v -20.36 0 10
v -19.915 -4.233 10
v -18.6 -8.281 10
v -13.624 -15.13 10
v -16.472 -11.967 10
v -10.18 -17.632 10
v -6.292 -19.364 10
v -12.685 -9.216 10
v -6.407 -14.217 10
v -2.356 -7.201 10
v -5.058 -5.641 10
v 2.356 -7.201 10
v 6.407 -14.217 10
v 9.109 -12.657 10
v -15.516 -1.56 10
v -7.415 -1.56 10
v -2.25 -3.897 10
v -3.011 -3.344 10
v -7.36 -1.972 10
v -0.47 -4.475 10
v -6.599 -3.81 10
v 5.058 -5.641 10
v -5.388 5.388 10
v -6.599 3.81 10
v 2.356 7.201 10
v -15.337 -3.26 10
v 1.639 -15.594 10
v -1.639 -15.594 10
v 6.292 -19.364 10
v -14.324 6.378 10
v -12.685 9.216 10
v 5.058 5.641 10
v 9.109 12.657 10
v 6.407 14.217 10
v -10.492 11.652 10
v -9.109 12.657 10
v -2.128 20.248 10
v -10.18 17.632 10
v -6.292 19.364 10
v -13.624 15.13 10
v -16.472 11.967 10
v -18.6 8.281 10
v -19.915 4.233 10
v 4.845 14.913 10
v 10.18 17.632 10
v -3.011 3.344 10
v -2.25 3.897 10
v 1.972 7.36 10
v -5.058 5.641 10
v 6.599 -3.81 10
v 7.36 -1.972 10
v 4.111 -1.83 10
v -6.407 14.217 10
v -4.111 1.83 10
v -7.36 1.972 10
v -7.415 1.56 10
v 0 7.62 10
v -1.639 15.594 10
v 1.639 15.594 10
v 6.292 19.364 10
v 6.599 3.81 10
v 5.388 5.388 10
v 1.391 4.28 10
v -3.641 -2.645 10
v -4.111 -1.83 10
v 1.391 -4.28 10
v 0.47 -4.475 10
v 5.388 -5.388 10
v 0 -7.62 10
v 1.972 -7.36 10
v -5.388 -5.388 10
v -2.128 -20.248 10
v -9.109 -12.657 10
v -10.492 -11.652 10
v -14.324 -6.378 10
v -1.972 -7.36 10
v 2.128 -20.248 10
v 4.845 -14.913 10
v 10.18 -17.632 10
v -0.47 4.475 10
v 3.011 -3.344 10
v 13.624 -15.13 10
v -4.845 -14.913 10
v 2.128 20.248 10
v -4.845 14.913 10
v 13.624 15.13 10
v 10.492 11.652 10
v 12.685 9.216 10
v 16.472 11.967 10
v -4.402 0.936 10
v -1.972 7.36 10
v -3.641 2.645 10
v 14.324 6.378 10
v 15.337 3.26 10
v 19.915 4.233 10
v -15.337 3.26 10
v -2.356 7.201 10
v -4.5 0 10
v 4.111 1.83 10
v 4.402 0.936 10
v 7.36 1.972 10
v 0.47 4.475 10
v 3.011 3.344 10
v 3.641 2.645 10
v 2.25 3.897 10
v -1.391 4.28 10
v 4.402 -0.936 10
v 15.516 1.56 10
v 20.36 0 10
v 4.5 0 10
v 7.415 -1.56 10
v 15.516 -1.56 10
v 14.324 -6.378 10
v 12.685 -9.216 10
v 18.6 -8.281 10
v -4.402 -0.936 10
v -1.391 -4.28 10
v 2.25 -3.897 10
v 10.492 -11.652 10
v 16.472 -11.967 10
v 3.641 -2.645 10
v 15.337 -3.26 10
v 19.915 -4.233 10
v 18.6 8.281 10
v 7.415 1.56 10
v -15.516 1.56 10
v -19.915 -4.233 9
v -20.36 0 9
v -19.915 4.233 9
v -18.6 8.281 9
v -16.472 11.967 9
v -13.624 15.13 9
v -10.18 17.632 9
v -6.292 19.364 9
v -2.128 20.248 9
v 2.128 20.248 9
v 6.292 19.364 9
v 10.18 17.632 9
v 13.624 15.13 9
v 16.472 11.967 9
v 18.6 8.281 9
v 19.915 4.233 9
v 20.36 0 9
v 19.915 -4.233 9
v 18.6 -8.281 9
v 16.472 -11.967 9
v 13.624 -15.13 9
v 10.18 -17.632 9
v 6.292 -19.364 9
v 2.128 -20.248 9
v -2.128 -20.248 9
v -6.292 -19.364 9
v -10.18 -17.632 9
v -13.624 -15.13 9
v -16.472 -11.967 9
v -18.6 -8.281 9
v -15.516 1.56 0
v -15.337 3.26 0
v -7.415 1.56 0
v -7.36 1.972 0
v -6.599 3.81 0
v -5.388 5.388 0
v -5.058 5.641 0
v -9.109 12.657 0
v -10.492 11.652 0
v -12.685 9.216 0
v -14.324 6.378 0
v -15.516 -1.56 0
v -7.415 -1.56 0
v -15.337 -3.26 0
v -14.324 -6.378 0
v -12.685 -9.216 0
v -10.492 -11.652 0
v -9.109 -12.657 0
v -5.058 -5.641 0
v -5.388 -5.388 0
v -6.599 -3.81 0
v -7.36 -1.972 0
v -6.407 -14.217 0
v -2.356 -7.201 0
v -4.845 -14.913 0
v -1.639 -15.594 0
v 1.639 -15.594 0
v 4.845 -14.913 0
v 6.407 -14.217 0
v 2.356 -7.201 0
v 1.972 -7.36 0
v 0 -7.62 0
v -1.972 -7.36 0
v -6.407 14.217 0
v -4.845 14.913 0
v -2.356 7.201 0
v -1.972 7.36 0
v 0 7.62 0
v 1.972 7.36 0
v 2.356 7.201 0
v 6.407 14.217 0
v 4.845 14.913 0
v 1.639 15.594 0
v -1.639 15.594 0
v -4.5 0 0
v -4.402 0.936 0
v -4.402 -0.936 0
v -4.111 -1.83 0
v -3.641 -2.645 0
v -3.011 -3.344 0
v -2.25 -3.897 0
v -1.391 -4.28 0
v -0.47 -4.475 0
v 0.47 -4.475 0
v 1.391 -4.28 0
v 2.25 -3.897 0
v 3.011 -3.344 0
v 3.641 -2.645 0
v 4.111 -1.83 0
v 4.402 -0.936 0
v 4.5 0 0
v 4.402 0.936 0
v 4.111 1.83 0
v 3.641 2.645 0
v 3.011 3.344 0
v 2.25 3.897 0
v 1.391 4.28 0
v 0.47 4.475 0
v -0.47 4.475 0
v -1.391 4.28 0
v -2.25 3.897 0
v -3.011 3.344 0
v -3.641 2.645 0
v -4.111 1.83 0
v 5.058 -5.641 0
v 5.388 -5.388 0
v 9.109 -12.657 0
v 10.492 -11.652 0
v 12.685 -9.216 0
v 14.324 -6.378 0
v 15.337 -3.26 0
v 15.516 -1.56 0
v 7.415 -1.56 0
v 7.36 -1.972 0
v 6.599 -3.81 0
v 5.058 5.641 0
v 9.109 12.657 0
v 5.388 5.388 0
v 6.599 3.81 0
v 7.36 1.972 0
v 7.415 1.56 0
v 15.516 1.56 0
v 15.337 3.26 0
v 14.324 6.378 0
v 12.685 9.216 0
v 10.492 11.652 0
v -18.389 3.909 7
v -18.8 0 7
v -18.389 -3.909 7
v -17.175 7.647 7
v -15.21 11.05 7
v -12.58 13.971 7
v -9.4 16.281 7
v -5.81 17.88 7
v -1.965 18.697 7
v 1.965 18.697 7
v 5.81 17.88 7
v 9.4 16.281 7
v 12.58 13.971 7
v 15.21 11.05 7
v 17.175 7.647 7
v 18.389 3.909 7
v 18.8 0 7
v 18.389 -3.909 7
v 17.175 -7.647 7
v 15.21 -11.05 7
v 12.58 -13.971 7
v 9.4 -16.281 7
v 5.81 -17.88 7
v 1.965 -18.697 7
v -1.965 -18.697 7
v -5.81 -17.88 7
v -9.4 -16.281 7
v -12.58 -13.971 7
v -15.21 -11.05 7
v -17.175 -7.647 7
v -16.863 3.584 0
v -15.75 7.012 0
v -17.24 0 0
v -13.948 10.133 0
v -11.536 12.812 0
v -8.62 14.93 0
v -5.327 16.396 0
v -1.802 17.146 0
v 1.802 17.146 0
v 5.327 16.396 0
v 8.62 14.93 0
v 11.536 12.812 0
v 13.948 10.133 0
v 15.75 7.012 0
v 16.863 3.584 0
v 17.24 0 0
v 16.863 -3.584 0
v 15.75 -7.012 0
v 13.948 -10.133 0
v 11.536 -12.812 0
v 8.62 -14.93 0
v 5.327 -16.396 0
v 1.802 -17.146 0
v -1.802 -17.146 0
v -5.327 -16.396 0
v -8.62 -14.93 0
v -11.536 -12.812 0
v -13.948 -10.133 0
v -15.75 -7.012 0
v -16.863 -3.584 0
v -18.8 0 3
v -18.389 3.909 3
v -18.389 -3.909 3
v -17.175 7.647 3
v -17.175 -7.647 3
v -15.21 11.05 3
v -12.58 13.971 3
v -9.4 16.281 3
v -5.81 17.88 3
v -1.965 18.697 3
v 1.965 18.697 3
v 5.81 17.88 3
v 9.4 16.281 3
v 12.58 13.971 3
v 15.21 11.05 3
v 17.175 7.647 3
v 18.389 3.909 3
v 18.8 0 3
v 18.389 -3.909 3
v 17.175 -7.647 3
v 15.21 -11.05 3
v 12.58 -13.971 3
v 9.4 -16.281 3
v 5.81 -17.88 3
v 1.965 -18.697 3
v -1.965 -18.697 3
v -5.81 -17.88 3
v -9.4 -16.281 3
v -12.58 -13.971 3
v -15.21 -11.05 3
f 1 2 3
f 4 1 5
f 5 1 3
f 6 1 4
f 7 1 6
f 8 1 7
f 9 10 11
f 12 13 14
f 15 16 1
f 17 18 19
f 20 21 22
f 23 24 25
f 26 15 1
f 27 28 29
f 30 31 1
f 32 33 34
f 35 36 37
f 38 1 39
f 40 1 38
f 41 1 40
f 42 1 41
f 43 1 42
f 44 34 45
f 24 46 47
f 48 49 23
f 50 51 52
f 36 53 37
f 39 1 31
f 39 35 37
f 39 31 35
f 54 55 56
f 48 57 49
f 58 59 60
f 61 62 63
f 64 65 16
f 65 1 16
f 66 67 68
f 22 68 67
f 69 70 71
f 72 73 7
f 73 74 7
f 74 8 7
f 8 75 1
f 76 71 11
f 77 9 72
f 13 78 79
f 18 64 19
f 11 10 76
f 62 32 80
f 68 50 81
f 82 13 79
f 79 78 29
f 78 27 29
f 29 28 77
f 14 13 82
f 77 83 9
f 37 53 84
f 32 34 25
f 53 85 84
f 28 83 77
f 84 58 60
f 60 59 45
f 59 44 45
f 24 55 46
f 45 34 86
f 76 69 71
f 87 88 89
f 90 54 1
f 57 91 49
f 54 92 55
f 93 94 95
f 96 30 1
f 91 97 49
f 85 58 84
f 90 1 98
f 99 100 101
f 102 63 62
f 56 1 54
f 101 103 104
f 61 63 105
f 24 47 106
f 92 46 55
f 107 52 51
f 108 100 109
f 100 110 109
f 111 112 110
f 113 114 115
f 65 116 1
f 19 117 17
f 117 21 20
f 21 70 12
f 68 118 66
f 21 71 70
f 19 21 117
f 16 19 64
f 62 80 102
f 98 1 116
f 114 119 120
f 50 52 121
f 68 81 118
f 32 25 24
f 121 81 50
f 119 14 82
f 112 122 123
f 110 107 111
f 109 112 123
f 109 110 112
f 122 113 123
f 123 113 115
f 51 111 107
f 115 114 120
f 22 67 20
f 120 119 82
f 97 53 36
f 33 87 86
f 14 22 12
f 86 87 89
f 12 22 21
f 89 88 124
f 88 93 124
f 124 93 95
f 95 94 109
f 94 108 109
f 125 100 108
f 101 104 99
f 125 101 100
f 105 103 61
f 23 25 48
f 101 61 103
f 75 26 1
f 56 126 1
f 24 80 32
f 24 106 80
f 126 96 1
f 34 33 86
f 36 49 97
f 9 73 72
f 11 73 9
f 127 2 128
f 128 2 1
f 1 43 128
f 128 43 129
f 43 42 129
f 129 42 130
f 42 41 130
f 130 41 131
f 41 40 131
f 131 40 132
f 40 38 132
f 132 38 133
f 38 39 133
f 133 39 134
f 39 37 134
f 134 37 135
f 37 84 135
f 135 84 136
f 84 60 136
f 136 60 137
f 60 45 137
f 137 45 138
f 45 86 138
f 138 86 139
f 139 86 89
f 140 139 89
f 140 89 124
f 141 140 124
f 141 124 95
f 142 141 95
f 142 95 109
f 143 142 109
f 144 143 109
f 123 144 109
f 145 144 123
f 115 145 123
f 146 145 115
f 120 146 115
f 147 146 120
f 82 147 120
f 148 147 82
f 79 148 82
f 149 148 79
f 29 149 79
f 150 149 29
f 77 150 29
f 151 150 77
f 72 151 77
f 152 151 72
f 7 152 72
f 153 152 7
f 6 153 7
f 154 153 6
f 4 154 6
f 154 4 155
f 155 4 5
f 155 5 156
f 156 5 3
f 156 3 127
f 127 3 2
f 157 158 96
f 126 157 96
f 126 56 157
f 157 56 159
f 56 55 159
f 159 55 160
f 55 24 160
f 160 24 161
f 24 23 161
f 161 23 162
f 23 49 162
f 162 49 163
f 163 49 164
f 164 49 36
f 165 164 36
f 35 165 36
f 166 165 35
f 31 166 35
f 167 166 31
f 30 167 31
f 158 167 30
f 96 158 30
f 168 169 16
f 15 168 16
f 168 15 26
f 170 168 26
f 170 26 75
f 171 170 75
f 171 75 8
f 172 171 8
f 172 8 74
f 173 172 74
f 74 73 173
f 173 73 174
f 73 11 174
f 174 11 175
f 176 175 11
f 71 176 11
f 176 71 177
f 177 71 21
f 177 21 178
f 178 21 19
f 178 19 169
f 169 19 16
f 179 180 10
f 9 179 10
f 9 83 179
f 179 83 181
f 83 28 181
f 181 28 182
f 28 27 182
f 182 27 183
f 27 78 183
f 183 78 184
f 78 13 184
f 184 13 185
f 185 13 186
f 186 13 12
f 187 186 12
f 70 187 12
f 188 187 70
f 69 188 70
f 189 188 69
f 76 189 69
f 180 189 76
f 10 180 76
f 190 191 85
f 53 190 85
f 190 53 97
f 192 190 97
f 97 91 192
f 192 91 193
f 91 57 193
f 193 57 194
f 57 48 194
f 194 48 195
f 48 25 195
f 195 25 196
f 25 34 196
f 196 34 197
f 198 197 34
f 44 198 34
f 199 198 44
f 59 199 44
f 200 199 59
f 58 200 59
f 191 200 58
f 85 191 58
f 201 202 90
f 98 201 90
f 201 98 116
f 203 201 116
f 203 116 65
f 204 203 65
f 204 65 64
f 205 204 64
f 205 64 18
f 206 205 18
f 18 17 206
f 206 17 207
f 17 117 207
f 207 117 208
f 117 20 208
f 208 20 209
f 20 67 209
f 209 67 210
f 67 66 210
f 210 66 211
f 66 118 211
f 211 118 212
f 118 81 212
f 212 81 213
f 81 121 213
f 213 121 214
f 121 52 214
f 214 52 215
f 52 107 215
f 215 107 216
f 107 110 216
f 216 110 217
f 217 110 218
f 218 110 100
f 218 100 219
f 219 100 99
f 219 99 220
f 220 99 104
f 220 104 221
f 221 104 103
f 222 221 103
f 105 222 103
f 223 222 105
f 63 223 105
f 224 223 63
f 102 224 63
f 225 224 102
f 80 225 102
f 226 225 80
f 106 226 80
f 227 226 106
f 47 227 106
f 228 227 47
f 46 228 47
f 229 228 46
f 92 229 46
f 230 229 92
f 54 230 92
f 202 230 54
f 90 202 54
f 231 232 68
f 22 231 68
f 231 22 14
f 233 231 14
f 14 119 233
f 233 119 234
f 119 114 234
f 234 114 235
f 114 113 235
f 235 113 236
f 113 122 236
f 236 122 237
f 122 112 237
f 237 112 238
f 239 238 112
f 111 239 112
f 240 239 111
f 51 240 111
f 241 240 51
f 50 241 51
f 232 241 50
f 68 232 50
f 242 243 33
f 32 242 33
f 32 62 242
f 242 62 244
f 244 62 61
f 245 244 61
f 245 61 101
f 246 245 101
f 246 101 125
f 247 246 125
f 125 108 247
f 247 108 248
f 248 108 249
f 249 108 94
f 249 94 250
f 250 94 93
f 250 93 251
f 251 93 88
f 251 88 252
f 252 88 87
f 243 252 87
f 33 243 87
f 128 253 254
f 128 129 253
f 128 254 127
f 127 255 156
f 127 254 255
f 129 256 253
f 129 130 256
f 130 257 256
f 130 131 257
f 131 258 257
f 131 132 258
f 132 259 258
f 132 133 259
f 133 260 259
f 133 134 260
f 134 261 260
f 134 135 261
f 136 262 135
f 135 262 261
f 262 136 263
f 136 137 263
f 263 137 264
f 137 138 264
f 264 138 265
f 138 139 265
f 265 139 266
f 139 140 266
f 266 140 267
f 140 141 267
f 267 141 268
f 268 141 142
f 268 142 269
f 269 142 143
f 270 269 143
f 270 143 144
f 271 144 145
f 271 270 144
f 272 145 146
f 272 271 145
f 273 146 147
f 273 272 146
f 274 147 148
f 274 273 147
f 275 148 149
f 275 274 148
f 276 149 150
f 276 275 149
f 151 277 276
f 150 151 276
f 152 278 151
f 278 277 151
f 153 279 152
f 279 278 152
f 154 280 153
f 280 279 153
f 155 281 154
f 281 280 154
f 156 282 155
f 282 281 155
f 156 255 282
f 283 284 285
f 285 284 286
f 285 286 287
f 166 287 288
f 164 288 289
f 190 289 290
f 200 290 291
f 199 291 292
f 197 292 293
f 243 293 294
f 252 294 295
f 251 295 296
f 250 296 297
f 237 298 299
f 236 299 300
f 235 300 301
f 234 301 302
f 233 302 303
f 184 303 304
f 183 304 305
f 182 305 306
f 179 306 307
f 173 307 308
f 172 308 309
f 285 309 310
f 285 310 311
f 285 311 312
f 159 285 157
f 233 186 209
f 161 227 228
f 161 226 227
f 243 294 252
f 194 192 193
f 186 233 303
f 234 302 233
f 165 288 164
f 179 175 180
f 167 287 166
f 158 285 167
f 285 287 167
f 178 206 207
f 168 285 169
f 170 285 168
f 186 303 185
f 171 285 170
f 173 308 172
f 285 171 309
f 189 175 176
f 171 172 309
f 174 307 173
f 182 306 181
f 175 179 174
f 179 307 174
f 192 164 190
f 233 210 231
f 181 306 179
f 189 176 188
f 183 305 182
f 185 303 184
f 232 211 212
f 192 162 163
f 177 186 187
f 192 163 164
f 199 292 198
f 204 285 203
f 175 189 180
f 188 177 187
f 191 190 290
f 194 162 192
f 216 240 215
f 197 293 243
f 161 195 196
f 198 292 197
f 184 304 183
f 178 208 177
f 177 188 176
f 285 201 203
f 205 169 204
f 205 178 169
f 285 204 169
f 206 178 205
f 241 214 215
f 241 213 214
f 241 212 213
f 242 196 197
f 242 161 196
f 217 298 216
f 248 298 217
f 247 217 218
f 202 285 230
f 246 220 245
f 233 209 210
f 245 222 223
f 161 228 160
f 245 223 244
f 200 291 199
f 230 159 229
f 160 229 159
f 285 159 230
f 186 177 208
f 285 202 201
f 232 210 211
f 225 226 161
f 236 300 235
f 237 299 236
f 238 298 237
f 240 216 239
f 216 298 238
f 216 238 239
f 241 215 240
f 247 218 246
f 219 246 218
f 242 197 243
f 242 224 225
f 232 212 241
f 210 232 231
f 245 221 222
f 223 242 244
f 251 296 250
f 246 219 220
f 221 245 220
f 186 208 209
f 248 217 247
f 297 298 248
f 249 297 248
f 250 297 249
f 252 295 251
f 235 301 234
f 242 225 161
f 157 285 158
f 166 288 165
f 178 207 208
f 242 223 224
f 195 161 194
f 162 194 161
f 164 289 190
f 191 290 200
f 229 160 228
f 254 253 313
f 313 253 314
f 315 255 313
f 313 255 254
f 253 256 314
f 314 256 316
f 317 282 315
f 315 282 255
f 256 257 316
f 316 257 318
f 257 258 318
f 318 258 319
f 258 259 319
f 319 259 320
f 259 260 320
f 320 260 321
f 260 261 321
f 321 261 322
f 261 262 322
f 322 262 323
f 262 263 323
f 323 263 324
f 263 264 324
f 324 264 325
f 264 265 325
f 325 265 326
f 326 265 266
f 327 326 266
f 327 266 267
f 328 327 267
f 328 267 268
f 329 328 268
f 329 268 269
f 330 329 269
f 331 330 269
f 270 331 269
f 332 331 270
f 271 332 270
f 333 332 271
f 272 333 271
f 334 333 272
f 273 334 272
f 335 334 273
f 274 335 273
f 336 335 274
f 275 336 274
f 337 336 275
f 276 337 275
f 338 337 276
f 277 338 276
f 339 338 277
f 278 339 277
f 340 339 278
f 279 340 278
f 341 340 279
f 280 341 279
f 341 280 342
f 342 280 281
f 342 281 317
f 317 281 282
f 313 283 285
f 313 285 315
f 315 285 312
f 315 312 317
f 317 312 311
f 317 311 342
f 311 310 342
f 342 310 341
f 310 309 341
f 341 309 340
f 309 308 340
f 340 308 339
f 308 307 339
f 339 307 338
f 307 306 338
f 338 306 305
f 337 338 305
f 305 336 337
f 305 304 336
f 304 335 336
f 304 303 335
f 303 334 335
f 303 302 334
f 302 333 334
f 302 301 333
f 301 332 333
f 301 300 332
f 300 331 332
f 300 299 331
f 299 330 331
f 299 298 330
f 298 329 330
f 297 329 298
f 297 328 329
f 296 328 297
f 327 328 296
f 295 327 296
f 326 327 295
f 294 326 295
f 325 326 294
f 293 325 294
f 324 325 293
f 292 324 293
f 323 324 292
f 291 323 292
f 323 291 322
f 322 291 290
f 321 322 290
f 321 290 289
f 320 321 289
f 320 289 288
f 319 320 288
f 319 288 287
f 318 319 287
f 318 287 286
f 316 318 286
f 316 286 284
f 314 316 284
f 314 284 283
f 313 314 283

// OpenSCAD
// PLASTIBOT MENDEL
// Spool Bushing
// Added settings for 1Kg Ultimachine spool.
// Plastibot <support@plastibot.com>
// Derived from: 

// Parametric Bushing
// by Generic
// http://www.thingiverse.com/thing:8697




module bushing(height, radius, hole_r, border,recess,num_support) {
	translate([0,0,height])
	mirror([0,0,1])
	difference() {
		union() {
			// Outer rings
			difference() {
				union() {
					cylinder(r=radius+border,h=1);
					translate([0,0,1]) {
						cylinder(h=2,r1=radius+border,r2=radius);
					}
					translate([0,0,3]) {
						cylinder(r=radius,h=height-6);
					}
					translate([0,0,height-3]) {
						cylinder(h=3,r1=radius,r2=radius-border);
					}
				}
				translate([0,0,-1]) {
					cylinder(r=radius-(border*2),h=height+border);
				}
			}
			// shafts
			for ( i=[0:num_support-1]) {
				rotate(a=[0,0,i*180/num_support]) {
					translate([-radius+border+0.4,-border,0]) {
						cube(size=[(radius-border)*2-0.6,border*2,height]);
					}
				}
			}
			// Central ring
			cylinder(r=hole_r+border*2,h=height);
		}
		translate([0,0,-1]) {
			// Central hole
			cylinder(r=hole_r,h=height+2,$fs=0.1);
			// Recess
			cylinder(r=radius-2*border, h=recess);
		}
	}
}


// Bushing BfB
//bushing(16, 75/2, 4.5, 1.56,5,3);

// Bushing orbitech
//bushing(16, 26.2, 4.5, 1.56,0,3);

// Bushing 51mm (ultimachine 1Kg)
bushing(10, 18.8, 4.5, 1.56,0,3);
